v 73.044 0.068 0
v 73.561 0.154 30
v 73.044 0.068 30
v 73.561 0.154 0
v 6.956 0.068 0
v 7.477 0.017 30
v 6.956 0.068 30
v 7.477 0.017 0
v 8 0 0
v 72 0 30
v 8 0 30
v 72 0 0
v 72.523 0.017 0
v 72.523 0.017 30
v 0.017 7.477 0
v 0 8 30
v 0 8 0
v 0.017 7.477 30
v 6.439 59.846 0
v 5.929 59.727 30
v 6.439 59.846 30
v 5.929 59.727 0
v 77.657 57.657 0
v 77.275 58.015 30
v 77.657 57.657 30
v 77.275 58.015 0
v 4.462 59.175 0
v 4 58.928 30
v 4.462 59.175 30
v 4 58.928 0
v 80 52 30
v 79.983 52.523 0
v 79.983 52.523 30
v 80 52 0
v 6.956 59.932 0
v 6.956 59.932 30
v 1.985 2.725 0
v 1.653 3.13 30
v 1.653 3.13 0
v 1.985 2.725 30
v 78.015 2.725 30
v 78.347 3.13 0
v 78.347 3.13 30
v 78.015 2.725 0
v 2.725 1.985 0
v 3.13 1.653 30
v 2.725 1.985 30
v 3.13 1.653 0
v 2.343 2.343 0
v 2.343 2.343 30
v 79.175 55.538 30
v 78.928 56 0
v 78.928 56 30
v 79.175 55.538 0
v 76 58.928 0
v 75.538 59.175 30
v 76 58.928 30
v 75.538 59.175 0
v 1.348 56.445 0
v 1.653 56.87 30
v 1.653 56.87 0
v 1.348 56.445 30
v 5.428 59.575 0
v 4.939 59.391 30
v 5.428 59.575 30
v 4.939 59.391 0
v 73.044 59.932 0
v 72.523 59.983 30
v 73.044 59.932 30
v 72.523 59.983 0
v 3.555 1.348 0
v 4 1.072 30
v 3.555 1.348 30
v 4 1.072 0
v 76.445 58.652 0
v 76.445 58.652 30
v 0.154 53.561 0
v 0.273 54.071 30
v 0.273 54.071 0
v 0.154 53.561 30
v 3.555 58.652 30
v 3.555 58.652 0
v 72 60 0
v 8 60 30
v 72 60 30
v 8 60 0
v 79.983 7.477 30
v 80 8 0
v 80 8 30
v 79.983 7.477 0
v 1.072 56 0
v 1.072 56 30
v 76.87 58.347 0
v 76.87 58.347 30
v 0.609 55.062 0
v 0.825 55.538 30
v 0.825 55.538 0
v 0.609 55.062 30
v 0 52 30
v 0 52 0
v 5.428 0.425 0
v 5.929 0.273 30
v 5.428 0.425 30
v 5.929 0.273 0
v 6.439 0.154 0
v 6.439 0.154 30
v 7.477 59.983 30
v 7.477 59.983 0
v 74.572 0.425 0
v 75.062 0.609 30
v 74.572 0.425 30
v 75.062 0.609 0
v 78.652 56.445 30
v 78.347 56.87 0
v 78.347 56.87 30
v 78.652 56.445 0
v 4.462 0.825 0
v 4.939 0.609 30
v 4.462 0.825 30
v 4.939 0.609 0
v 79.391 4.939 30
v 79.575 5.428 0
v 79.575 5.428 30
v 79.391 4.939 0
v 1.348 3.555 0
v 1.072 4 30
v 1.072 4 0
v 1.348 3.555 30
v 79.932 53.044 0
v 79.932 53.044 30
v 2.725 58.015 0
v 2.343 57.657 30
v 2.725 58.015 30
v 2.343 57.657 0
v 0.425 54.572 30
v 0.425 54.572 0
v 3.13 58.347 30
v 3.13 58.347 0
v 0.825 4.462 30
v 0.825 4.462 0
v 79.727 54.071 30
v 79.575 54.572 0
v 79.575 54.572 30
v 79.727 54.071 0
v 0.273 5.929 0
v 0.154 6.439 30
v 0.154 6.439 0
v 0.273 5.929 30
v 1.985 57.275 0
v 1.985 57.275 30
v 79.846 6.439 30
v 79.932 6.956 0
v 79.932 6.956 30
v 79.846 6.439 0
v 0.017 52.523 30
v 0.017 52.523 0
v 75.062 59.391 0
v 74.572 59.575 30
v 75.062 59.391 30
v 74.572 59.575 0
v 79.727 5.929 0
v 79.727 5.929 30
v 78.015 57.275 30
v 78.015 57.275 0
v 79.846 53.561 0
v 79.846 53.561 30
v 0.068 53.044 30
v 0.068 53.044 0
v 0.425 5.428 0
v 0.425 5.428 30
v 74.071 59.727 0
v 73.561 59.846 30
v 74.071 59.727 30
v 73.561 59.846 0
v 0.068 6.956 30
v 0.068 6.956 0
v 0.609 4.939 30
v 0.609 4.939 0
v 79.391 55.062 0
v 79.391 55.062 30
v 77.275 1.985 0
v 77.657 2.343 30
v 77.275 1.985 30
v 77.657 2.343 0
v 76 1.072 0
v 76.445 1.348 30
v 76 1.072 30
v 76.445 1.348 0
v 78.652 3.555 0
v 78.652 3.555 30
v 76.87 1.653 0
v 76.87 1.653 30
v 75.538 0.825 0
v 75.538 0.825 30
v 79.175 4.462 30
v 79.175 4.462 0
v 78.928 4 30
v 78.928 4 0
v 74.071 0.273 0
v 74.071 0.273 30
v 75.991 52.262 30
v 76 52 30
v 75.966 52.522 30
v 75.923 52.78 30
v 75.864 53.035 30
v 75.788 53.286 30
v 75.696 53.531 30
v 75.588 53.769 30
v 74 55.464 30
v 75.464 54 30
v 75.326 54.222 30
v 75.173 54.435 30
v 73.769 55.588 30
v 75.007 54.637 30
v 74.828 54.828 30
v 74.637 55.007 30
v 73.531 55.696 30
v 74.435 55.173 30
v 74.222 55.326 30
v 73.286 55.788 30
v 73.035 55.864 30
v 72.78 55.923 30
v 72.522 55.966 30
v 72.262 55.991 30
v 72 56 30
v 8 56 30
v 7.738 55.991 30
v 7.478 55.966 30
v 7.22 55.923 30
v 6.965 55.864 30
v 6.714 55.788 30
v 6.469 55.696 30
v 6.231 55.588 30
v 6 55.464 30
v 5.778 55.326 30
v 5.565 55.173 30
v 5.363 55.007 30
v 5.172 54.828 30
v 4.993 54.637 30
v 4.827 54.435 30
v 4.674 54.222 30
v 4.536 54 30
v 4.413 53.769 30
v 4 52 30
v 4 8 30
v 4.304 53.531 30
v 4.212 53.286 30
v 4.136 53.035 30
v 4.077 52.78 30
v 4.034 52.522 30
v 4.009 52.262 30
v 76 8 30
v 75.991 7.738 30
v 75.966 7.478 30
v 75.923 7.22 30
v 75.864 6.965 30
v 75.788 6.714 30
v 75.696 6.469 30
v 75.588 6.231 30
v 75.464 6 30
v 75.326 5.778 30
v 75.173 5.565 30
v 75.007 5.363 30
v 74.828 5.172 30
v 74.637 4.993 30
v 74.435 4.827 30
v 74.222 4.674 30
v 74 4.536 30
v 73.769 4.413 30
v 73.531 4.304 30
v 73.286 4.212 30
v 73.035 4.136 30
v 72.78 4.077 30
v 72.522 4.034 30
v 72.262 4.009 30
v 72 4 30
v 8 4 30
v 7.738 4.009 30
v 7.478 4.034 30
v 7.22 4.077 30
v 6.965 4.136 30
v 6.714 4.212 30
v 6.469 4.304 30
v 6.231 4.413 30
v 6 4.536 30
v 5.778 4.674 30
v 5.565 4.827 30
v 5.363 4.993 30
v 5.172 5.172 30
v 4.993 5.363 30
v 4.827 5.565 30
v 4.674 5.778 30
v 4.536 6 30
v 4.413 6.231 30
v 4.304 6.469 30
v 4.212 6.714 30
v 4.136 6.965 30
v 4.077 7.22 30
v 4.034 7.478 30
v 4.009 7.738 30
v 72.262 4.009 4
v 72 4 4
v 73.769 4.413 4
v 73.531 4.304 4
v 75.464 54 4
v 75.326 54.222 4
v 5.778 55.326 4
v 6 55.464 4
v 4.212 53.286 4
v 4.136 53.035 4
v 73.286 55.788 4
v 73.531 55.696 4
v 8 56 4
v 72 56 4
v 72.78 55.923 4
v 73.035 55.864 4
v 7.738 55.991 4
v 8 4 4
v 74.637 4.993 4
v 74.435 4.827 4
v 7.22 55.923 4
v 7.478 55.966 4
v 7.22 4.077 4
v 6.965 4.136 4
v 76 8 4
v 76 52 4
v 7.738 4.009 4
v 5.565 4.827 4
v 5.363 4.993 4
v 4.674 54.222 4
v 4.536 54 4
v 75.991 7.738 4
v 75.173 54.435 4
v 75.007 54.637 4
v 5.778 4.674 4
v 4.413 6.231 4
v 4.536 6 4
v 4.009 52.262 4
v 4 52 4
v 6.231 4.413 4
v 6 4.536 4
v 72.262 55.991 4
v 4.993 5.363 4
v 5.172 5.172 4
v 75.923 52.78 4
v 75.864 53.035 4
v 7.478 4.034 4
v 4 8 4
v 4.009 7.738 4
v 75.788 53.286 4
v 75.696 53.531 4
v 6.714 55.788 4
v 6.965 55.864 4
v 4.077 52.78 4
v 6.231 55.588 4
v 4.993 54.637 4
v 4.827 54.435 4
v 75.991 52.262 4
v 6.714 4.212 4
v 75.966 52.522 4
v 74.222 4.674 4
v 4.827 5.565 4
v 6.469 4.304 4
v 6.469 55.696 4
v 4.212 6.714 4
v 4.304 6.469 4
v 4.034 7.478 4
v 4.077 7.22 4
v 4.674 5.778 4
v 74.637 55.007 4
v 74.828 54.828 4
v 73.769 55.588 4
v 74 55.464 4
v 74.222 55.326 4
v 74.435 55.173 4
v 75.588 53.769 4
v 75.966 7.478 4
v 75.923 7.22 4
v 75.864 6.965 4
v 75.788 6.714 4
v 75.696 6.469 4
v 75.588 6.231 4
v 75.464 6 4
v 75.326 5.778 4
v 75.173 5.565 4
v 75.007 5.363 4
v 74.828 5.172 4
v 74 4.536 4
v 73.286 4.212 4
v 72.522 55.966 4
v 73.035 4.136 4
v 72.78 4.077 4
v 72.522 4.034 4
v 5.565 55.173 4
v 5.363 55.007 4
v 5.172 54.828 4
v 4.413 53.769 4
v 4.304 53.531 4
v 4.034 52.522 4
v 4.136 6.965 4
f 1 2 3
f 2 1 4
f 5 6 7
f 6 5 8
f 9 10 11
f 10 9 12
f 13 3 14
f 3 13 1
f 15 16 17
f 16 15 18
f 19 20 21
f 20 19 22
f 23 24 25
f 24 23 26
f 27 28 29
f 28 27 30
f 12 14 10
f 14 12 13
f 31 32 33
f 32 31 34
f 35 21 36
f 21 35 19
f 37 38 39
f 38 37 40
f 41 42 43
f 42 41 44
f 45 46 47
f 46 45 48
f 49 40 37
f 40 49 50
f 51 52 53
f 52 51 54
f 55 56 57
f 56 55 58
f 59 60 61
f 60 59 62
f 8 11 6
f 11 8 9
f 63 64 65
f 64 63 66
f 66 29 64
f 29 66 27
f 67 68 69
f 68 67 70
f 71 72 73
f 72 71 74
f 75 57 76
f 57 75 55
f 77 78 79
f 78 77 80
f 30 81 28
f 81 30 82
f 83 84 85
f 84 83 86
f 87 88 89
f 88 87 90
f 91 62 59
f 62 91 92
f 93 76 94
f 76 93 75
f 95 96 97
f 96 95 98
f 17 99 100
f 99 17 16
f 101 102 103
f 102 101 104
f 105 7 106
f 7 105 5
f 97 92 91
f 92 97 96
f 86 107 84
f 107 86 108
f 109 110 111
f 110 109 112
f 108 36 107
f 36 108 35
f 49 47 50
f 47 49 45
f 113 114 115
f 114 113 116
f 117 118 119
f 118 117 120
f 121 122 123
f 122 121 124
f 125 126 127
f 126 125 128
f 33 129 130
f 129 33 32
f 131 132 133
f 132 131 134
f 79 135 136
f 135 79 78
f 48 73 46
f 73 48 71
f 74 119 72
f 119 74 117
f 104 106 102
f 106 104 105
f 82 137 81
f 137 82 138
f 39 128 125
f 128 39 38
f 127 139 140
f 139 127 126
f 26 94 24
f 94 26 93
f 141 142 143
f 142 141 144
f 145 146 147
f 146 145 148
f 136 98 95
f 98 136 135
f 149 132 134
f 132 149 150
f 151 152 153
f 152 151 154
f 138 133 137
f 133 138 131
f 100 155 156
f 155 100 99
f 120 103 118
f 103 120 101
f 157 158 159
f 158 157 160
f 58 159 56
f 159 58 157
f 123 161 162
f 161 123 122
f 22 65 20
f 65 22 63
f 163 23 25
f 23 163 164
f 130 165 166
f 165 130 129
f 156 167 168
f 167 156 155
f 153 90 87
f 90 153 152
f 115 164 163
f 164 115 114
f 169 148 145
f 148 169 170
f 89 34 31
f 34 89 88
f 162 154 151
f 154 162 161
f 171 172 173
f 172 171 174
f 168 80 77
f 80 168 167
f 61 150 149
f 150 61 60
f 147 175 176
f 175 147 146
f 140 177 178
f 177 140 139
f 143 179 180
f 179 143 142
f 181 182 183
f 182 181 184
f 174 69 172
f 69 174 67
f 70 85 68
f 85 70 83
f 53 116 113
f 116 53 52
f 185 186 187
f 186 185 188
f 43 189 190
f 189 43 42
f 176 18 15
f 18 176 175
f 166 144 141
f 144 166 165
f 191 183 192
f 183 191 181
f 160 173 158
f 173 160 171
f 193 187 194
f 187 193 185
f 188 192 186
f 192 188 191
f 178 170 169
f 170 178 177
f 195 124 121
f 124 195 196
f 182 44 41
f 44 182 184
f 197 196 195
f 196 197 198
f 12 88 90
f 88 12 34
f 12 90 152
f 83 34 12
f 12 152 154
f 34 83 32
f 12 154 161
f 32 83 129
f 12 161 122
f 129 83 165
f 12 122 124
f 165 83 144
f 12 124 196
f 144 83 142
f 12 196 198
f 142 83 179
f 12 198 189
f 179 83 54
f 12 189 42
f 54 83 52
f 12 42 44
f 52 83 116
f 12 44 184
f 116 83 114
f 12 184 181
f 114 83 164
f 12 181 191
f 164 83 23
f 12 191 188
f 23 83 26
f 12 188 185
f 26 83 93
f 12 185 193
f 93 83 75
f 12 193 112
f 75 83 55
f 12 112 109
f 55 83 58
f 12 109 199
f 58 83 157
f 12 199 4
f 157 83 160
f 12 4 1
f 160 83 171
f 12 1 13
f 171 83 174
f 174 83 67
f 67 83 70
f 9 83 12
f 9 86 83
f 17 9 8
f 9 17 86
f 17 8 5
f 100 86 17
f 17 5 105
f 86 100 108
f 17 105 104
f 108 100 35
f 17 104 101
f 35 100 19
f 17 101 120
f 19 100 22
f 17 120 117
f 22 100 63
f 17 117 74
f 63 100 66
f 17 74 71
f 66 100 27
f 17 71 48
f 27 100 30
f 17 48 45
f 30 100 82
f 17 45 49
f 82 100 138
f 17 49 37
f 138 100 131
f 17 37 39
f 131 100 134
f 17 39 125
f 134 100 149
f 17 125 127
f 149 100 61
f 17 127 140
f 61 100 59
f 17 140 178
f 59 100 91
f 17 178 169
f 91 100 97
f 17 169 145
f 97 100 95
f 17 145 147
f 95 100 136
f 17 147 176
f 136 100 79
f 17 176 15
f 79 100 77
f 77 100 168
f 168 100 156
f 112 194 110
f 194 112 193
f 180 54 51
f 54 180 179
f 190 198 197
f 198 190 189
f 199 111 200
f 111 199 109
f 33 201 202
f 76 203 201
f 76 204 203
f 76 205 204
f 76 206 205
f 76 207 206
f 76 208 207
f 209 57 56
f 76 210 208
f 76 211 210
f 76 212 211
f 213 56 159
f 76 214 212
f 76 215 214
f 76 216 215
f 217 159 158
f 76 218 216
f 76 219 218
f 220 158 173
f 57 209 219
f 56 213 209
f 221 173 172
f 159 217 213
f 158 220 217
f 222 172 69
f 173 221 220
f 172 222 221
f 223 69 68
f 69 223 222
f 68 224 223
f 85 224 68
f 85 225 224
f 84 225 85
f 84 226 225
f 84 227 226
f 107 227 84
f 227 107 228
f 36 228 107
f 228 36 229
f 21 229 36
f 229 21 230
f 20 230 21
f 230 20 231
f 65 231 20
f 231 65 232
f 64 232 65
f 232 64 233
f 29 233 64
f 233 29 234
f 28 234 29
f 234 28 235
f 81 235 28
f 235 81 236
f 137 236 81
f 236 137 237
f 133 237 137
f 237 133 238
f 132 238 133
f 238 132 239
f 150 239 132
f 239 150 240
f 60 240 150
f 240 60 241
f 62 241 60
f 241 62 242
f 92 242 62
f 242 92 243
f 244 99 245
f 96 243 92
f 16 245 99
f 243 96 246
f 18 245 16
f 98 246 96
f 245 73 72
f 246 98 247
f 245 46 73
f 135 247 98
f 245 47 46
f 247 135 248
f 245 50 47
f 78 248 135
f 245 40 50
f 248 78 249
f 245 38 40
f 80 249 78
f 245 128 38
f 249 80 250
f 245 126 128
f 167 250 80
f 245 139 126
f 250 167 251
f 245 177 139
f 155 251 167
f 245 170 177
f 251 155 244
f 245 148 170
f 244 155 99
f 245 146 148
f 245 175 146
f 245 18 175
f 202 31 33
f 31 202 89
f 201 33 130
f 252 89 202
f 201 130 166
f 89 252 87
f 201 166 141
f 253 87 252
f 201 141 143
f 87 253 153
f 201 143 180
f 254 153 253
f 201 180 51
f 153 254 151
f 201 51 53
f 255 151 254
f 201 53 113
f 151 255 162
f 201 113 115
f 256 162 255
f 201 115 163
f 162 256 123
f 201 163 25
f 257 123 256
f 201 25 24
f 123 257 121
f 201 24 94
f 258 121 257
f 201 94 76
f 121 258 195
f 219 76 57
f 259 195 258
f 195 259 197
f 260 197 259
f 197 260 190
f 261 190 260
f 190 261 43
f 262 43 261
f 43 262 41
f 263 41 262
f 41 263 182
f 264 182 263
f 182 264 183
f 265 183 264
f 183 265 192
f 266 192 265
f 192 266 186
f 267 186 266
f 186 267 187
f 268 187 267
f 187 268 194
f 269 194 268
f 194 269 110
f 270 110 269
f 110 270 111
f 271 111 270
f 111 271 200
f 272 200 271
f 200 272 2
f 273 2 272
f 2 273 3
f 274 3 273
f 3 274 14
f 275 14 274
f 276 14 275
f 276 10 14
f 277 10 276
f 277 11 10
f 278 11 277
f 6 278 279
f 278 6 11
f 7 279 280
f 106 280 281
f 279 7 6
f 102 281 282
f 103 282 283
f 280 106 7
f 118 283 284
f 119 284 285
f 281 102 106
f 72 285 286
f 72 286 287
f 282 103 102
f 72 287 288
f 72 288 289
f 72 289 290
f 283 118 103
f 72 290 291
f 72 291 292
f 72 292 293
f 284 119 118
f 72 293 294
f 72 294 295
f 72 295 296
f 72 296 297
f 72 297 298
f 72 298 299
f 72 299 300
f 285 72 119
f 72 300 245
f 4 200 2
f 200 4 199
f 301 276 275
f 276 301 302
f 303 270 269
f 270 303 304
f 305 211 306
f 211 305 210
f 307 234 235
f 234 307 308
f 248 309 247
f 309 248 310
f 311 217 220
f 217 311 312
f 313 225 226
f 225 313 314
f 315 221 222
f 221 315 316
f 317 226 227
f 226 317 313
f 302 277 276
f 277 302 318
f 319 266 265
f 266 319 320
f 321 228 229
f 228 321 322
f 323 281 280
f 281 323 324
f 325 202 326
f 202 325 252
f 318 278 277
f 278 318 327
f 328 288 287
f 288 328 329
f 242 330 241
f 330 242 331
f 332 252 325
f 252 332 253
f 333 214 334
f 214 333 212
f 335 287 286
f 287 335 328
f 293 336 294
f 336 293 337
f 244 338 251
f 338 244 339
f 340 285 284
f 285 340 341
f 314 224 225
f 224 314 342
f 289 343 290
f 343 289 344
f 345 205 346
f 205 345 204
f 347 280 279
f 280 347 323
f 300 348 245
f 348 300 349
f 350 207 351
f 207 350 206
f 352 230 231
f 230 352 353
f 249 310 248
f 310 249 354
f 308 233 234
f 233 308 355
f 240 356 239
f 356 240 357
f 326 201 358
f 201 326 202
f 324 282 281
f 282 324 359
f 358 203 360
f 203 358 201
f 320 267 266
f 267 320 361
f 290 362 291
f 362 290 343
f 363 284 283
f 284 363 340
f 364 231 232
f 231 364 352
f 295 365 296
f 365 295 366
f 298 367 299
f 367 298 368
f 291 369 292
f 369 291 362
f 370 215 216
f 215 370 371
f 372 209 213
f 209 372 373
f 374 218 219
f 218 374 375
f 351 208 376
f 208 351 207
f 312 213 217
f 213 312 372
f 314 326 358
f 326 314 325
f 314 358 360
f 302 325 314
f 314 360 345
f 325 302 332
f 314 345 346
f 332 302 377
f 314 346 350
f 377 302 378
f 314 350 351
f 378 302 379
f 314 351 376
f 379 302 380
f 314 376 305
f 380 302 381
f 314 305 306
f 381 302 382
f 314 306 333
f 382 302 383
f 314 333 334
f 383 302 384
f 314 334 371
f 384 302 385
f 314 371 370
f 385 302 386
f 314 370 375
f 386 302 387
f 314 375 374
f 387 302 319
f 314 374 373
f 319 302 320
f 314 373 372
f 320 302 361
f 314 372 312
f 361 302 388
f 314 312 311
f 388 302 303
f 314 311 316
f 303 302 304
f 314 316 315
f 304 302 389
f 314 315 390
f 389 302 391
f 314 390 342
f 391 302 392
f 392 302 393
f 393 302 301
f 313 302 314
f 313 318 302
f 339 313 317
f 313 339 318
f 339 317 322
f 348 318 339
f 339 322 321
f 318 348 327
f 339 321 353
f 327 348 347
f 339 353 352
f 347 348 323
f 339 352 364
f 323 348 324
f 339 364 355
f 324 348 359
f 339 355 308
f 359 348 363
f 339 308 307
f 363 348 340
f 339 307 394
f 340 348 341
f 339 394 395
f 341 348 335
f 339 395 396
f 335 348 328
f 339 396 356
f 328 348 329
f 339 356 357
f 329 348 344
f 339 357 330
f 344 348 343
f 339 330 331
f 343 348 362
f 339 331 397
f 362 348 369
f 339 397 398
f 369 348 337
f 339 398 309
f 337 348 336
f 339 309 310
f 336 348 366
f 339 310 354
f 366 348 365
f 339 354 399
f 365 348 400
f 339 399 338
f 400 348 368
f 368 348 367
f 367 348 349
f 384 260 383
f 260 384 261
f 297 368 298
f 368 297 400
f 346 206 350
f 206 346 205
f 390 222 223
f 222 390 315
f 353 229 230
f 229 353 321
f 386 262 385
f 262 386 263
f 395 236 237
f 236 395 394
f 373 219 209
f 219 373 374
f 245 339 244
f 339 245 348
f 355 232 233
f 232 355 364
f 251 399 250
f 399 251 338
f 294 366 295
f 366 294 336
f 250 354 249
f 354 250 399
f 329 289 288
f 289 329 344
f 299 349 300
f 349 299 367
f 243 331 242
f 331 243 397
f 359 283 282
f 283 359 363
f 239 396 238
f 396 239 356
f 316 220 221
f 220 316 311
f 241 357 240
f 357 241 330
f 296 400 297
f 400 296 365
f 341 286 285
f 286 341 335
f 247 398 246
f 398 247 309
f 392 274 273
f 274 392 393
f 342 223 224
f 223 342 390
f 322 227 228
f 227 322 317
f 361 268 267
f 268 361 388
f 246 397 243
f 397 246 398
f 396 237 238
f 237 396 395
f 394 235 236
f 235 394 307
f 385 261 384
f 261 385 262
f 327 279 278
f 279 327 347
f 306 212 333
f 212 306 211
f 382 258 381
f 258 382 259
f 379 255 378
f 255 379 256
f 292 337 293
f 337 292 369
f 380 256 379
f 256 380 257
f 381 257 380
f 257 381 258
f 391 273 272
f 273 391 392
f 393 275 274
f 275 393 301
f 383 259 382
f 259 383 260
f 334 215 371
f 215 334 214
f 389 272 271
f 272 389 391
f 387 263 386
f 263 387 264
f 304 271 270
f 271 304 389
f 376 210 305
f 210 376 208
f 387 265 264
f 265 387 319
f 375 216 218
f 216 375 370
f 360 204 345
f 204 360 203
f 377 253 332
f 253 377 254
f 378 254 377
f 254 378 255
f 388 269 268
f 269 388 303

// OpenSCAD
$fn=96;
thickness=4;
module rr(w,d,r){translate([r,r]) offset(r=r) square([w-2*r,d-2*r]);} difference(){linear_extrude(30) rr(80,60,8); translate([thickness,thickness,thickness]) linear_extrude(31) rr(80-2*thickness,60-2*thickness,8-thickness);}
